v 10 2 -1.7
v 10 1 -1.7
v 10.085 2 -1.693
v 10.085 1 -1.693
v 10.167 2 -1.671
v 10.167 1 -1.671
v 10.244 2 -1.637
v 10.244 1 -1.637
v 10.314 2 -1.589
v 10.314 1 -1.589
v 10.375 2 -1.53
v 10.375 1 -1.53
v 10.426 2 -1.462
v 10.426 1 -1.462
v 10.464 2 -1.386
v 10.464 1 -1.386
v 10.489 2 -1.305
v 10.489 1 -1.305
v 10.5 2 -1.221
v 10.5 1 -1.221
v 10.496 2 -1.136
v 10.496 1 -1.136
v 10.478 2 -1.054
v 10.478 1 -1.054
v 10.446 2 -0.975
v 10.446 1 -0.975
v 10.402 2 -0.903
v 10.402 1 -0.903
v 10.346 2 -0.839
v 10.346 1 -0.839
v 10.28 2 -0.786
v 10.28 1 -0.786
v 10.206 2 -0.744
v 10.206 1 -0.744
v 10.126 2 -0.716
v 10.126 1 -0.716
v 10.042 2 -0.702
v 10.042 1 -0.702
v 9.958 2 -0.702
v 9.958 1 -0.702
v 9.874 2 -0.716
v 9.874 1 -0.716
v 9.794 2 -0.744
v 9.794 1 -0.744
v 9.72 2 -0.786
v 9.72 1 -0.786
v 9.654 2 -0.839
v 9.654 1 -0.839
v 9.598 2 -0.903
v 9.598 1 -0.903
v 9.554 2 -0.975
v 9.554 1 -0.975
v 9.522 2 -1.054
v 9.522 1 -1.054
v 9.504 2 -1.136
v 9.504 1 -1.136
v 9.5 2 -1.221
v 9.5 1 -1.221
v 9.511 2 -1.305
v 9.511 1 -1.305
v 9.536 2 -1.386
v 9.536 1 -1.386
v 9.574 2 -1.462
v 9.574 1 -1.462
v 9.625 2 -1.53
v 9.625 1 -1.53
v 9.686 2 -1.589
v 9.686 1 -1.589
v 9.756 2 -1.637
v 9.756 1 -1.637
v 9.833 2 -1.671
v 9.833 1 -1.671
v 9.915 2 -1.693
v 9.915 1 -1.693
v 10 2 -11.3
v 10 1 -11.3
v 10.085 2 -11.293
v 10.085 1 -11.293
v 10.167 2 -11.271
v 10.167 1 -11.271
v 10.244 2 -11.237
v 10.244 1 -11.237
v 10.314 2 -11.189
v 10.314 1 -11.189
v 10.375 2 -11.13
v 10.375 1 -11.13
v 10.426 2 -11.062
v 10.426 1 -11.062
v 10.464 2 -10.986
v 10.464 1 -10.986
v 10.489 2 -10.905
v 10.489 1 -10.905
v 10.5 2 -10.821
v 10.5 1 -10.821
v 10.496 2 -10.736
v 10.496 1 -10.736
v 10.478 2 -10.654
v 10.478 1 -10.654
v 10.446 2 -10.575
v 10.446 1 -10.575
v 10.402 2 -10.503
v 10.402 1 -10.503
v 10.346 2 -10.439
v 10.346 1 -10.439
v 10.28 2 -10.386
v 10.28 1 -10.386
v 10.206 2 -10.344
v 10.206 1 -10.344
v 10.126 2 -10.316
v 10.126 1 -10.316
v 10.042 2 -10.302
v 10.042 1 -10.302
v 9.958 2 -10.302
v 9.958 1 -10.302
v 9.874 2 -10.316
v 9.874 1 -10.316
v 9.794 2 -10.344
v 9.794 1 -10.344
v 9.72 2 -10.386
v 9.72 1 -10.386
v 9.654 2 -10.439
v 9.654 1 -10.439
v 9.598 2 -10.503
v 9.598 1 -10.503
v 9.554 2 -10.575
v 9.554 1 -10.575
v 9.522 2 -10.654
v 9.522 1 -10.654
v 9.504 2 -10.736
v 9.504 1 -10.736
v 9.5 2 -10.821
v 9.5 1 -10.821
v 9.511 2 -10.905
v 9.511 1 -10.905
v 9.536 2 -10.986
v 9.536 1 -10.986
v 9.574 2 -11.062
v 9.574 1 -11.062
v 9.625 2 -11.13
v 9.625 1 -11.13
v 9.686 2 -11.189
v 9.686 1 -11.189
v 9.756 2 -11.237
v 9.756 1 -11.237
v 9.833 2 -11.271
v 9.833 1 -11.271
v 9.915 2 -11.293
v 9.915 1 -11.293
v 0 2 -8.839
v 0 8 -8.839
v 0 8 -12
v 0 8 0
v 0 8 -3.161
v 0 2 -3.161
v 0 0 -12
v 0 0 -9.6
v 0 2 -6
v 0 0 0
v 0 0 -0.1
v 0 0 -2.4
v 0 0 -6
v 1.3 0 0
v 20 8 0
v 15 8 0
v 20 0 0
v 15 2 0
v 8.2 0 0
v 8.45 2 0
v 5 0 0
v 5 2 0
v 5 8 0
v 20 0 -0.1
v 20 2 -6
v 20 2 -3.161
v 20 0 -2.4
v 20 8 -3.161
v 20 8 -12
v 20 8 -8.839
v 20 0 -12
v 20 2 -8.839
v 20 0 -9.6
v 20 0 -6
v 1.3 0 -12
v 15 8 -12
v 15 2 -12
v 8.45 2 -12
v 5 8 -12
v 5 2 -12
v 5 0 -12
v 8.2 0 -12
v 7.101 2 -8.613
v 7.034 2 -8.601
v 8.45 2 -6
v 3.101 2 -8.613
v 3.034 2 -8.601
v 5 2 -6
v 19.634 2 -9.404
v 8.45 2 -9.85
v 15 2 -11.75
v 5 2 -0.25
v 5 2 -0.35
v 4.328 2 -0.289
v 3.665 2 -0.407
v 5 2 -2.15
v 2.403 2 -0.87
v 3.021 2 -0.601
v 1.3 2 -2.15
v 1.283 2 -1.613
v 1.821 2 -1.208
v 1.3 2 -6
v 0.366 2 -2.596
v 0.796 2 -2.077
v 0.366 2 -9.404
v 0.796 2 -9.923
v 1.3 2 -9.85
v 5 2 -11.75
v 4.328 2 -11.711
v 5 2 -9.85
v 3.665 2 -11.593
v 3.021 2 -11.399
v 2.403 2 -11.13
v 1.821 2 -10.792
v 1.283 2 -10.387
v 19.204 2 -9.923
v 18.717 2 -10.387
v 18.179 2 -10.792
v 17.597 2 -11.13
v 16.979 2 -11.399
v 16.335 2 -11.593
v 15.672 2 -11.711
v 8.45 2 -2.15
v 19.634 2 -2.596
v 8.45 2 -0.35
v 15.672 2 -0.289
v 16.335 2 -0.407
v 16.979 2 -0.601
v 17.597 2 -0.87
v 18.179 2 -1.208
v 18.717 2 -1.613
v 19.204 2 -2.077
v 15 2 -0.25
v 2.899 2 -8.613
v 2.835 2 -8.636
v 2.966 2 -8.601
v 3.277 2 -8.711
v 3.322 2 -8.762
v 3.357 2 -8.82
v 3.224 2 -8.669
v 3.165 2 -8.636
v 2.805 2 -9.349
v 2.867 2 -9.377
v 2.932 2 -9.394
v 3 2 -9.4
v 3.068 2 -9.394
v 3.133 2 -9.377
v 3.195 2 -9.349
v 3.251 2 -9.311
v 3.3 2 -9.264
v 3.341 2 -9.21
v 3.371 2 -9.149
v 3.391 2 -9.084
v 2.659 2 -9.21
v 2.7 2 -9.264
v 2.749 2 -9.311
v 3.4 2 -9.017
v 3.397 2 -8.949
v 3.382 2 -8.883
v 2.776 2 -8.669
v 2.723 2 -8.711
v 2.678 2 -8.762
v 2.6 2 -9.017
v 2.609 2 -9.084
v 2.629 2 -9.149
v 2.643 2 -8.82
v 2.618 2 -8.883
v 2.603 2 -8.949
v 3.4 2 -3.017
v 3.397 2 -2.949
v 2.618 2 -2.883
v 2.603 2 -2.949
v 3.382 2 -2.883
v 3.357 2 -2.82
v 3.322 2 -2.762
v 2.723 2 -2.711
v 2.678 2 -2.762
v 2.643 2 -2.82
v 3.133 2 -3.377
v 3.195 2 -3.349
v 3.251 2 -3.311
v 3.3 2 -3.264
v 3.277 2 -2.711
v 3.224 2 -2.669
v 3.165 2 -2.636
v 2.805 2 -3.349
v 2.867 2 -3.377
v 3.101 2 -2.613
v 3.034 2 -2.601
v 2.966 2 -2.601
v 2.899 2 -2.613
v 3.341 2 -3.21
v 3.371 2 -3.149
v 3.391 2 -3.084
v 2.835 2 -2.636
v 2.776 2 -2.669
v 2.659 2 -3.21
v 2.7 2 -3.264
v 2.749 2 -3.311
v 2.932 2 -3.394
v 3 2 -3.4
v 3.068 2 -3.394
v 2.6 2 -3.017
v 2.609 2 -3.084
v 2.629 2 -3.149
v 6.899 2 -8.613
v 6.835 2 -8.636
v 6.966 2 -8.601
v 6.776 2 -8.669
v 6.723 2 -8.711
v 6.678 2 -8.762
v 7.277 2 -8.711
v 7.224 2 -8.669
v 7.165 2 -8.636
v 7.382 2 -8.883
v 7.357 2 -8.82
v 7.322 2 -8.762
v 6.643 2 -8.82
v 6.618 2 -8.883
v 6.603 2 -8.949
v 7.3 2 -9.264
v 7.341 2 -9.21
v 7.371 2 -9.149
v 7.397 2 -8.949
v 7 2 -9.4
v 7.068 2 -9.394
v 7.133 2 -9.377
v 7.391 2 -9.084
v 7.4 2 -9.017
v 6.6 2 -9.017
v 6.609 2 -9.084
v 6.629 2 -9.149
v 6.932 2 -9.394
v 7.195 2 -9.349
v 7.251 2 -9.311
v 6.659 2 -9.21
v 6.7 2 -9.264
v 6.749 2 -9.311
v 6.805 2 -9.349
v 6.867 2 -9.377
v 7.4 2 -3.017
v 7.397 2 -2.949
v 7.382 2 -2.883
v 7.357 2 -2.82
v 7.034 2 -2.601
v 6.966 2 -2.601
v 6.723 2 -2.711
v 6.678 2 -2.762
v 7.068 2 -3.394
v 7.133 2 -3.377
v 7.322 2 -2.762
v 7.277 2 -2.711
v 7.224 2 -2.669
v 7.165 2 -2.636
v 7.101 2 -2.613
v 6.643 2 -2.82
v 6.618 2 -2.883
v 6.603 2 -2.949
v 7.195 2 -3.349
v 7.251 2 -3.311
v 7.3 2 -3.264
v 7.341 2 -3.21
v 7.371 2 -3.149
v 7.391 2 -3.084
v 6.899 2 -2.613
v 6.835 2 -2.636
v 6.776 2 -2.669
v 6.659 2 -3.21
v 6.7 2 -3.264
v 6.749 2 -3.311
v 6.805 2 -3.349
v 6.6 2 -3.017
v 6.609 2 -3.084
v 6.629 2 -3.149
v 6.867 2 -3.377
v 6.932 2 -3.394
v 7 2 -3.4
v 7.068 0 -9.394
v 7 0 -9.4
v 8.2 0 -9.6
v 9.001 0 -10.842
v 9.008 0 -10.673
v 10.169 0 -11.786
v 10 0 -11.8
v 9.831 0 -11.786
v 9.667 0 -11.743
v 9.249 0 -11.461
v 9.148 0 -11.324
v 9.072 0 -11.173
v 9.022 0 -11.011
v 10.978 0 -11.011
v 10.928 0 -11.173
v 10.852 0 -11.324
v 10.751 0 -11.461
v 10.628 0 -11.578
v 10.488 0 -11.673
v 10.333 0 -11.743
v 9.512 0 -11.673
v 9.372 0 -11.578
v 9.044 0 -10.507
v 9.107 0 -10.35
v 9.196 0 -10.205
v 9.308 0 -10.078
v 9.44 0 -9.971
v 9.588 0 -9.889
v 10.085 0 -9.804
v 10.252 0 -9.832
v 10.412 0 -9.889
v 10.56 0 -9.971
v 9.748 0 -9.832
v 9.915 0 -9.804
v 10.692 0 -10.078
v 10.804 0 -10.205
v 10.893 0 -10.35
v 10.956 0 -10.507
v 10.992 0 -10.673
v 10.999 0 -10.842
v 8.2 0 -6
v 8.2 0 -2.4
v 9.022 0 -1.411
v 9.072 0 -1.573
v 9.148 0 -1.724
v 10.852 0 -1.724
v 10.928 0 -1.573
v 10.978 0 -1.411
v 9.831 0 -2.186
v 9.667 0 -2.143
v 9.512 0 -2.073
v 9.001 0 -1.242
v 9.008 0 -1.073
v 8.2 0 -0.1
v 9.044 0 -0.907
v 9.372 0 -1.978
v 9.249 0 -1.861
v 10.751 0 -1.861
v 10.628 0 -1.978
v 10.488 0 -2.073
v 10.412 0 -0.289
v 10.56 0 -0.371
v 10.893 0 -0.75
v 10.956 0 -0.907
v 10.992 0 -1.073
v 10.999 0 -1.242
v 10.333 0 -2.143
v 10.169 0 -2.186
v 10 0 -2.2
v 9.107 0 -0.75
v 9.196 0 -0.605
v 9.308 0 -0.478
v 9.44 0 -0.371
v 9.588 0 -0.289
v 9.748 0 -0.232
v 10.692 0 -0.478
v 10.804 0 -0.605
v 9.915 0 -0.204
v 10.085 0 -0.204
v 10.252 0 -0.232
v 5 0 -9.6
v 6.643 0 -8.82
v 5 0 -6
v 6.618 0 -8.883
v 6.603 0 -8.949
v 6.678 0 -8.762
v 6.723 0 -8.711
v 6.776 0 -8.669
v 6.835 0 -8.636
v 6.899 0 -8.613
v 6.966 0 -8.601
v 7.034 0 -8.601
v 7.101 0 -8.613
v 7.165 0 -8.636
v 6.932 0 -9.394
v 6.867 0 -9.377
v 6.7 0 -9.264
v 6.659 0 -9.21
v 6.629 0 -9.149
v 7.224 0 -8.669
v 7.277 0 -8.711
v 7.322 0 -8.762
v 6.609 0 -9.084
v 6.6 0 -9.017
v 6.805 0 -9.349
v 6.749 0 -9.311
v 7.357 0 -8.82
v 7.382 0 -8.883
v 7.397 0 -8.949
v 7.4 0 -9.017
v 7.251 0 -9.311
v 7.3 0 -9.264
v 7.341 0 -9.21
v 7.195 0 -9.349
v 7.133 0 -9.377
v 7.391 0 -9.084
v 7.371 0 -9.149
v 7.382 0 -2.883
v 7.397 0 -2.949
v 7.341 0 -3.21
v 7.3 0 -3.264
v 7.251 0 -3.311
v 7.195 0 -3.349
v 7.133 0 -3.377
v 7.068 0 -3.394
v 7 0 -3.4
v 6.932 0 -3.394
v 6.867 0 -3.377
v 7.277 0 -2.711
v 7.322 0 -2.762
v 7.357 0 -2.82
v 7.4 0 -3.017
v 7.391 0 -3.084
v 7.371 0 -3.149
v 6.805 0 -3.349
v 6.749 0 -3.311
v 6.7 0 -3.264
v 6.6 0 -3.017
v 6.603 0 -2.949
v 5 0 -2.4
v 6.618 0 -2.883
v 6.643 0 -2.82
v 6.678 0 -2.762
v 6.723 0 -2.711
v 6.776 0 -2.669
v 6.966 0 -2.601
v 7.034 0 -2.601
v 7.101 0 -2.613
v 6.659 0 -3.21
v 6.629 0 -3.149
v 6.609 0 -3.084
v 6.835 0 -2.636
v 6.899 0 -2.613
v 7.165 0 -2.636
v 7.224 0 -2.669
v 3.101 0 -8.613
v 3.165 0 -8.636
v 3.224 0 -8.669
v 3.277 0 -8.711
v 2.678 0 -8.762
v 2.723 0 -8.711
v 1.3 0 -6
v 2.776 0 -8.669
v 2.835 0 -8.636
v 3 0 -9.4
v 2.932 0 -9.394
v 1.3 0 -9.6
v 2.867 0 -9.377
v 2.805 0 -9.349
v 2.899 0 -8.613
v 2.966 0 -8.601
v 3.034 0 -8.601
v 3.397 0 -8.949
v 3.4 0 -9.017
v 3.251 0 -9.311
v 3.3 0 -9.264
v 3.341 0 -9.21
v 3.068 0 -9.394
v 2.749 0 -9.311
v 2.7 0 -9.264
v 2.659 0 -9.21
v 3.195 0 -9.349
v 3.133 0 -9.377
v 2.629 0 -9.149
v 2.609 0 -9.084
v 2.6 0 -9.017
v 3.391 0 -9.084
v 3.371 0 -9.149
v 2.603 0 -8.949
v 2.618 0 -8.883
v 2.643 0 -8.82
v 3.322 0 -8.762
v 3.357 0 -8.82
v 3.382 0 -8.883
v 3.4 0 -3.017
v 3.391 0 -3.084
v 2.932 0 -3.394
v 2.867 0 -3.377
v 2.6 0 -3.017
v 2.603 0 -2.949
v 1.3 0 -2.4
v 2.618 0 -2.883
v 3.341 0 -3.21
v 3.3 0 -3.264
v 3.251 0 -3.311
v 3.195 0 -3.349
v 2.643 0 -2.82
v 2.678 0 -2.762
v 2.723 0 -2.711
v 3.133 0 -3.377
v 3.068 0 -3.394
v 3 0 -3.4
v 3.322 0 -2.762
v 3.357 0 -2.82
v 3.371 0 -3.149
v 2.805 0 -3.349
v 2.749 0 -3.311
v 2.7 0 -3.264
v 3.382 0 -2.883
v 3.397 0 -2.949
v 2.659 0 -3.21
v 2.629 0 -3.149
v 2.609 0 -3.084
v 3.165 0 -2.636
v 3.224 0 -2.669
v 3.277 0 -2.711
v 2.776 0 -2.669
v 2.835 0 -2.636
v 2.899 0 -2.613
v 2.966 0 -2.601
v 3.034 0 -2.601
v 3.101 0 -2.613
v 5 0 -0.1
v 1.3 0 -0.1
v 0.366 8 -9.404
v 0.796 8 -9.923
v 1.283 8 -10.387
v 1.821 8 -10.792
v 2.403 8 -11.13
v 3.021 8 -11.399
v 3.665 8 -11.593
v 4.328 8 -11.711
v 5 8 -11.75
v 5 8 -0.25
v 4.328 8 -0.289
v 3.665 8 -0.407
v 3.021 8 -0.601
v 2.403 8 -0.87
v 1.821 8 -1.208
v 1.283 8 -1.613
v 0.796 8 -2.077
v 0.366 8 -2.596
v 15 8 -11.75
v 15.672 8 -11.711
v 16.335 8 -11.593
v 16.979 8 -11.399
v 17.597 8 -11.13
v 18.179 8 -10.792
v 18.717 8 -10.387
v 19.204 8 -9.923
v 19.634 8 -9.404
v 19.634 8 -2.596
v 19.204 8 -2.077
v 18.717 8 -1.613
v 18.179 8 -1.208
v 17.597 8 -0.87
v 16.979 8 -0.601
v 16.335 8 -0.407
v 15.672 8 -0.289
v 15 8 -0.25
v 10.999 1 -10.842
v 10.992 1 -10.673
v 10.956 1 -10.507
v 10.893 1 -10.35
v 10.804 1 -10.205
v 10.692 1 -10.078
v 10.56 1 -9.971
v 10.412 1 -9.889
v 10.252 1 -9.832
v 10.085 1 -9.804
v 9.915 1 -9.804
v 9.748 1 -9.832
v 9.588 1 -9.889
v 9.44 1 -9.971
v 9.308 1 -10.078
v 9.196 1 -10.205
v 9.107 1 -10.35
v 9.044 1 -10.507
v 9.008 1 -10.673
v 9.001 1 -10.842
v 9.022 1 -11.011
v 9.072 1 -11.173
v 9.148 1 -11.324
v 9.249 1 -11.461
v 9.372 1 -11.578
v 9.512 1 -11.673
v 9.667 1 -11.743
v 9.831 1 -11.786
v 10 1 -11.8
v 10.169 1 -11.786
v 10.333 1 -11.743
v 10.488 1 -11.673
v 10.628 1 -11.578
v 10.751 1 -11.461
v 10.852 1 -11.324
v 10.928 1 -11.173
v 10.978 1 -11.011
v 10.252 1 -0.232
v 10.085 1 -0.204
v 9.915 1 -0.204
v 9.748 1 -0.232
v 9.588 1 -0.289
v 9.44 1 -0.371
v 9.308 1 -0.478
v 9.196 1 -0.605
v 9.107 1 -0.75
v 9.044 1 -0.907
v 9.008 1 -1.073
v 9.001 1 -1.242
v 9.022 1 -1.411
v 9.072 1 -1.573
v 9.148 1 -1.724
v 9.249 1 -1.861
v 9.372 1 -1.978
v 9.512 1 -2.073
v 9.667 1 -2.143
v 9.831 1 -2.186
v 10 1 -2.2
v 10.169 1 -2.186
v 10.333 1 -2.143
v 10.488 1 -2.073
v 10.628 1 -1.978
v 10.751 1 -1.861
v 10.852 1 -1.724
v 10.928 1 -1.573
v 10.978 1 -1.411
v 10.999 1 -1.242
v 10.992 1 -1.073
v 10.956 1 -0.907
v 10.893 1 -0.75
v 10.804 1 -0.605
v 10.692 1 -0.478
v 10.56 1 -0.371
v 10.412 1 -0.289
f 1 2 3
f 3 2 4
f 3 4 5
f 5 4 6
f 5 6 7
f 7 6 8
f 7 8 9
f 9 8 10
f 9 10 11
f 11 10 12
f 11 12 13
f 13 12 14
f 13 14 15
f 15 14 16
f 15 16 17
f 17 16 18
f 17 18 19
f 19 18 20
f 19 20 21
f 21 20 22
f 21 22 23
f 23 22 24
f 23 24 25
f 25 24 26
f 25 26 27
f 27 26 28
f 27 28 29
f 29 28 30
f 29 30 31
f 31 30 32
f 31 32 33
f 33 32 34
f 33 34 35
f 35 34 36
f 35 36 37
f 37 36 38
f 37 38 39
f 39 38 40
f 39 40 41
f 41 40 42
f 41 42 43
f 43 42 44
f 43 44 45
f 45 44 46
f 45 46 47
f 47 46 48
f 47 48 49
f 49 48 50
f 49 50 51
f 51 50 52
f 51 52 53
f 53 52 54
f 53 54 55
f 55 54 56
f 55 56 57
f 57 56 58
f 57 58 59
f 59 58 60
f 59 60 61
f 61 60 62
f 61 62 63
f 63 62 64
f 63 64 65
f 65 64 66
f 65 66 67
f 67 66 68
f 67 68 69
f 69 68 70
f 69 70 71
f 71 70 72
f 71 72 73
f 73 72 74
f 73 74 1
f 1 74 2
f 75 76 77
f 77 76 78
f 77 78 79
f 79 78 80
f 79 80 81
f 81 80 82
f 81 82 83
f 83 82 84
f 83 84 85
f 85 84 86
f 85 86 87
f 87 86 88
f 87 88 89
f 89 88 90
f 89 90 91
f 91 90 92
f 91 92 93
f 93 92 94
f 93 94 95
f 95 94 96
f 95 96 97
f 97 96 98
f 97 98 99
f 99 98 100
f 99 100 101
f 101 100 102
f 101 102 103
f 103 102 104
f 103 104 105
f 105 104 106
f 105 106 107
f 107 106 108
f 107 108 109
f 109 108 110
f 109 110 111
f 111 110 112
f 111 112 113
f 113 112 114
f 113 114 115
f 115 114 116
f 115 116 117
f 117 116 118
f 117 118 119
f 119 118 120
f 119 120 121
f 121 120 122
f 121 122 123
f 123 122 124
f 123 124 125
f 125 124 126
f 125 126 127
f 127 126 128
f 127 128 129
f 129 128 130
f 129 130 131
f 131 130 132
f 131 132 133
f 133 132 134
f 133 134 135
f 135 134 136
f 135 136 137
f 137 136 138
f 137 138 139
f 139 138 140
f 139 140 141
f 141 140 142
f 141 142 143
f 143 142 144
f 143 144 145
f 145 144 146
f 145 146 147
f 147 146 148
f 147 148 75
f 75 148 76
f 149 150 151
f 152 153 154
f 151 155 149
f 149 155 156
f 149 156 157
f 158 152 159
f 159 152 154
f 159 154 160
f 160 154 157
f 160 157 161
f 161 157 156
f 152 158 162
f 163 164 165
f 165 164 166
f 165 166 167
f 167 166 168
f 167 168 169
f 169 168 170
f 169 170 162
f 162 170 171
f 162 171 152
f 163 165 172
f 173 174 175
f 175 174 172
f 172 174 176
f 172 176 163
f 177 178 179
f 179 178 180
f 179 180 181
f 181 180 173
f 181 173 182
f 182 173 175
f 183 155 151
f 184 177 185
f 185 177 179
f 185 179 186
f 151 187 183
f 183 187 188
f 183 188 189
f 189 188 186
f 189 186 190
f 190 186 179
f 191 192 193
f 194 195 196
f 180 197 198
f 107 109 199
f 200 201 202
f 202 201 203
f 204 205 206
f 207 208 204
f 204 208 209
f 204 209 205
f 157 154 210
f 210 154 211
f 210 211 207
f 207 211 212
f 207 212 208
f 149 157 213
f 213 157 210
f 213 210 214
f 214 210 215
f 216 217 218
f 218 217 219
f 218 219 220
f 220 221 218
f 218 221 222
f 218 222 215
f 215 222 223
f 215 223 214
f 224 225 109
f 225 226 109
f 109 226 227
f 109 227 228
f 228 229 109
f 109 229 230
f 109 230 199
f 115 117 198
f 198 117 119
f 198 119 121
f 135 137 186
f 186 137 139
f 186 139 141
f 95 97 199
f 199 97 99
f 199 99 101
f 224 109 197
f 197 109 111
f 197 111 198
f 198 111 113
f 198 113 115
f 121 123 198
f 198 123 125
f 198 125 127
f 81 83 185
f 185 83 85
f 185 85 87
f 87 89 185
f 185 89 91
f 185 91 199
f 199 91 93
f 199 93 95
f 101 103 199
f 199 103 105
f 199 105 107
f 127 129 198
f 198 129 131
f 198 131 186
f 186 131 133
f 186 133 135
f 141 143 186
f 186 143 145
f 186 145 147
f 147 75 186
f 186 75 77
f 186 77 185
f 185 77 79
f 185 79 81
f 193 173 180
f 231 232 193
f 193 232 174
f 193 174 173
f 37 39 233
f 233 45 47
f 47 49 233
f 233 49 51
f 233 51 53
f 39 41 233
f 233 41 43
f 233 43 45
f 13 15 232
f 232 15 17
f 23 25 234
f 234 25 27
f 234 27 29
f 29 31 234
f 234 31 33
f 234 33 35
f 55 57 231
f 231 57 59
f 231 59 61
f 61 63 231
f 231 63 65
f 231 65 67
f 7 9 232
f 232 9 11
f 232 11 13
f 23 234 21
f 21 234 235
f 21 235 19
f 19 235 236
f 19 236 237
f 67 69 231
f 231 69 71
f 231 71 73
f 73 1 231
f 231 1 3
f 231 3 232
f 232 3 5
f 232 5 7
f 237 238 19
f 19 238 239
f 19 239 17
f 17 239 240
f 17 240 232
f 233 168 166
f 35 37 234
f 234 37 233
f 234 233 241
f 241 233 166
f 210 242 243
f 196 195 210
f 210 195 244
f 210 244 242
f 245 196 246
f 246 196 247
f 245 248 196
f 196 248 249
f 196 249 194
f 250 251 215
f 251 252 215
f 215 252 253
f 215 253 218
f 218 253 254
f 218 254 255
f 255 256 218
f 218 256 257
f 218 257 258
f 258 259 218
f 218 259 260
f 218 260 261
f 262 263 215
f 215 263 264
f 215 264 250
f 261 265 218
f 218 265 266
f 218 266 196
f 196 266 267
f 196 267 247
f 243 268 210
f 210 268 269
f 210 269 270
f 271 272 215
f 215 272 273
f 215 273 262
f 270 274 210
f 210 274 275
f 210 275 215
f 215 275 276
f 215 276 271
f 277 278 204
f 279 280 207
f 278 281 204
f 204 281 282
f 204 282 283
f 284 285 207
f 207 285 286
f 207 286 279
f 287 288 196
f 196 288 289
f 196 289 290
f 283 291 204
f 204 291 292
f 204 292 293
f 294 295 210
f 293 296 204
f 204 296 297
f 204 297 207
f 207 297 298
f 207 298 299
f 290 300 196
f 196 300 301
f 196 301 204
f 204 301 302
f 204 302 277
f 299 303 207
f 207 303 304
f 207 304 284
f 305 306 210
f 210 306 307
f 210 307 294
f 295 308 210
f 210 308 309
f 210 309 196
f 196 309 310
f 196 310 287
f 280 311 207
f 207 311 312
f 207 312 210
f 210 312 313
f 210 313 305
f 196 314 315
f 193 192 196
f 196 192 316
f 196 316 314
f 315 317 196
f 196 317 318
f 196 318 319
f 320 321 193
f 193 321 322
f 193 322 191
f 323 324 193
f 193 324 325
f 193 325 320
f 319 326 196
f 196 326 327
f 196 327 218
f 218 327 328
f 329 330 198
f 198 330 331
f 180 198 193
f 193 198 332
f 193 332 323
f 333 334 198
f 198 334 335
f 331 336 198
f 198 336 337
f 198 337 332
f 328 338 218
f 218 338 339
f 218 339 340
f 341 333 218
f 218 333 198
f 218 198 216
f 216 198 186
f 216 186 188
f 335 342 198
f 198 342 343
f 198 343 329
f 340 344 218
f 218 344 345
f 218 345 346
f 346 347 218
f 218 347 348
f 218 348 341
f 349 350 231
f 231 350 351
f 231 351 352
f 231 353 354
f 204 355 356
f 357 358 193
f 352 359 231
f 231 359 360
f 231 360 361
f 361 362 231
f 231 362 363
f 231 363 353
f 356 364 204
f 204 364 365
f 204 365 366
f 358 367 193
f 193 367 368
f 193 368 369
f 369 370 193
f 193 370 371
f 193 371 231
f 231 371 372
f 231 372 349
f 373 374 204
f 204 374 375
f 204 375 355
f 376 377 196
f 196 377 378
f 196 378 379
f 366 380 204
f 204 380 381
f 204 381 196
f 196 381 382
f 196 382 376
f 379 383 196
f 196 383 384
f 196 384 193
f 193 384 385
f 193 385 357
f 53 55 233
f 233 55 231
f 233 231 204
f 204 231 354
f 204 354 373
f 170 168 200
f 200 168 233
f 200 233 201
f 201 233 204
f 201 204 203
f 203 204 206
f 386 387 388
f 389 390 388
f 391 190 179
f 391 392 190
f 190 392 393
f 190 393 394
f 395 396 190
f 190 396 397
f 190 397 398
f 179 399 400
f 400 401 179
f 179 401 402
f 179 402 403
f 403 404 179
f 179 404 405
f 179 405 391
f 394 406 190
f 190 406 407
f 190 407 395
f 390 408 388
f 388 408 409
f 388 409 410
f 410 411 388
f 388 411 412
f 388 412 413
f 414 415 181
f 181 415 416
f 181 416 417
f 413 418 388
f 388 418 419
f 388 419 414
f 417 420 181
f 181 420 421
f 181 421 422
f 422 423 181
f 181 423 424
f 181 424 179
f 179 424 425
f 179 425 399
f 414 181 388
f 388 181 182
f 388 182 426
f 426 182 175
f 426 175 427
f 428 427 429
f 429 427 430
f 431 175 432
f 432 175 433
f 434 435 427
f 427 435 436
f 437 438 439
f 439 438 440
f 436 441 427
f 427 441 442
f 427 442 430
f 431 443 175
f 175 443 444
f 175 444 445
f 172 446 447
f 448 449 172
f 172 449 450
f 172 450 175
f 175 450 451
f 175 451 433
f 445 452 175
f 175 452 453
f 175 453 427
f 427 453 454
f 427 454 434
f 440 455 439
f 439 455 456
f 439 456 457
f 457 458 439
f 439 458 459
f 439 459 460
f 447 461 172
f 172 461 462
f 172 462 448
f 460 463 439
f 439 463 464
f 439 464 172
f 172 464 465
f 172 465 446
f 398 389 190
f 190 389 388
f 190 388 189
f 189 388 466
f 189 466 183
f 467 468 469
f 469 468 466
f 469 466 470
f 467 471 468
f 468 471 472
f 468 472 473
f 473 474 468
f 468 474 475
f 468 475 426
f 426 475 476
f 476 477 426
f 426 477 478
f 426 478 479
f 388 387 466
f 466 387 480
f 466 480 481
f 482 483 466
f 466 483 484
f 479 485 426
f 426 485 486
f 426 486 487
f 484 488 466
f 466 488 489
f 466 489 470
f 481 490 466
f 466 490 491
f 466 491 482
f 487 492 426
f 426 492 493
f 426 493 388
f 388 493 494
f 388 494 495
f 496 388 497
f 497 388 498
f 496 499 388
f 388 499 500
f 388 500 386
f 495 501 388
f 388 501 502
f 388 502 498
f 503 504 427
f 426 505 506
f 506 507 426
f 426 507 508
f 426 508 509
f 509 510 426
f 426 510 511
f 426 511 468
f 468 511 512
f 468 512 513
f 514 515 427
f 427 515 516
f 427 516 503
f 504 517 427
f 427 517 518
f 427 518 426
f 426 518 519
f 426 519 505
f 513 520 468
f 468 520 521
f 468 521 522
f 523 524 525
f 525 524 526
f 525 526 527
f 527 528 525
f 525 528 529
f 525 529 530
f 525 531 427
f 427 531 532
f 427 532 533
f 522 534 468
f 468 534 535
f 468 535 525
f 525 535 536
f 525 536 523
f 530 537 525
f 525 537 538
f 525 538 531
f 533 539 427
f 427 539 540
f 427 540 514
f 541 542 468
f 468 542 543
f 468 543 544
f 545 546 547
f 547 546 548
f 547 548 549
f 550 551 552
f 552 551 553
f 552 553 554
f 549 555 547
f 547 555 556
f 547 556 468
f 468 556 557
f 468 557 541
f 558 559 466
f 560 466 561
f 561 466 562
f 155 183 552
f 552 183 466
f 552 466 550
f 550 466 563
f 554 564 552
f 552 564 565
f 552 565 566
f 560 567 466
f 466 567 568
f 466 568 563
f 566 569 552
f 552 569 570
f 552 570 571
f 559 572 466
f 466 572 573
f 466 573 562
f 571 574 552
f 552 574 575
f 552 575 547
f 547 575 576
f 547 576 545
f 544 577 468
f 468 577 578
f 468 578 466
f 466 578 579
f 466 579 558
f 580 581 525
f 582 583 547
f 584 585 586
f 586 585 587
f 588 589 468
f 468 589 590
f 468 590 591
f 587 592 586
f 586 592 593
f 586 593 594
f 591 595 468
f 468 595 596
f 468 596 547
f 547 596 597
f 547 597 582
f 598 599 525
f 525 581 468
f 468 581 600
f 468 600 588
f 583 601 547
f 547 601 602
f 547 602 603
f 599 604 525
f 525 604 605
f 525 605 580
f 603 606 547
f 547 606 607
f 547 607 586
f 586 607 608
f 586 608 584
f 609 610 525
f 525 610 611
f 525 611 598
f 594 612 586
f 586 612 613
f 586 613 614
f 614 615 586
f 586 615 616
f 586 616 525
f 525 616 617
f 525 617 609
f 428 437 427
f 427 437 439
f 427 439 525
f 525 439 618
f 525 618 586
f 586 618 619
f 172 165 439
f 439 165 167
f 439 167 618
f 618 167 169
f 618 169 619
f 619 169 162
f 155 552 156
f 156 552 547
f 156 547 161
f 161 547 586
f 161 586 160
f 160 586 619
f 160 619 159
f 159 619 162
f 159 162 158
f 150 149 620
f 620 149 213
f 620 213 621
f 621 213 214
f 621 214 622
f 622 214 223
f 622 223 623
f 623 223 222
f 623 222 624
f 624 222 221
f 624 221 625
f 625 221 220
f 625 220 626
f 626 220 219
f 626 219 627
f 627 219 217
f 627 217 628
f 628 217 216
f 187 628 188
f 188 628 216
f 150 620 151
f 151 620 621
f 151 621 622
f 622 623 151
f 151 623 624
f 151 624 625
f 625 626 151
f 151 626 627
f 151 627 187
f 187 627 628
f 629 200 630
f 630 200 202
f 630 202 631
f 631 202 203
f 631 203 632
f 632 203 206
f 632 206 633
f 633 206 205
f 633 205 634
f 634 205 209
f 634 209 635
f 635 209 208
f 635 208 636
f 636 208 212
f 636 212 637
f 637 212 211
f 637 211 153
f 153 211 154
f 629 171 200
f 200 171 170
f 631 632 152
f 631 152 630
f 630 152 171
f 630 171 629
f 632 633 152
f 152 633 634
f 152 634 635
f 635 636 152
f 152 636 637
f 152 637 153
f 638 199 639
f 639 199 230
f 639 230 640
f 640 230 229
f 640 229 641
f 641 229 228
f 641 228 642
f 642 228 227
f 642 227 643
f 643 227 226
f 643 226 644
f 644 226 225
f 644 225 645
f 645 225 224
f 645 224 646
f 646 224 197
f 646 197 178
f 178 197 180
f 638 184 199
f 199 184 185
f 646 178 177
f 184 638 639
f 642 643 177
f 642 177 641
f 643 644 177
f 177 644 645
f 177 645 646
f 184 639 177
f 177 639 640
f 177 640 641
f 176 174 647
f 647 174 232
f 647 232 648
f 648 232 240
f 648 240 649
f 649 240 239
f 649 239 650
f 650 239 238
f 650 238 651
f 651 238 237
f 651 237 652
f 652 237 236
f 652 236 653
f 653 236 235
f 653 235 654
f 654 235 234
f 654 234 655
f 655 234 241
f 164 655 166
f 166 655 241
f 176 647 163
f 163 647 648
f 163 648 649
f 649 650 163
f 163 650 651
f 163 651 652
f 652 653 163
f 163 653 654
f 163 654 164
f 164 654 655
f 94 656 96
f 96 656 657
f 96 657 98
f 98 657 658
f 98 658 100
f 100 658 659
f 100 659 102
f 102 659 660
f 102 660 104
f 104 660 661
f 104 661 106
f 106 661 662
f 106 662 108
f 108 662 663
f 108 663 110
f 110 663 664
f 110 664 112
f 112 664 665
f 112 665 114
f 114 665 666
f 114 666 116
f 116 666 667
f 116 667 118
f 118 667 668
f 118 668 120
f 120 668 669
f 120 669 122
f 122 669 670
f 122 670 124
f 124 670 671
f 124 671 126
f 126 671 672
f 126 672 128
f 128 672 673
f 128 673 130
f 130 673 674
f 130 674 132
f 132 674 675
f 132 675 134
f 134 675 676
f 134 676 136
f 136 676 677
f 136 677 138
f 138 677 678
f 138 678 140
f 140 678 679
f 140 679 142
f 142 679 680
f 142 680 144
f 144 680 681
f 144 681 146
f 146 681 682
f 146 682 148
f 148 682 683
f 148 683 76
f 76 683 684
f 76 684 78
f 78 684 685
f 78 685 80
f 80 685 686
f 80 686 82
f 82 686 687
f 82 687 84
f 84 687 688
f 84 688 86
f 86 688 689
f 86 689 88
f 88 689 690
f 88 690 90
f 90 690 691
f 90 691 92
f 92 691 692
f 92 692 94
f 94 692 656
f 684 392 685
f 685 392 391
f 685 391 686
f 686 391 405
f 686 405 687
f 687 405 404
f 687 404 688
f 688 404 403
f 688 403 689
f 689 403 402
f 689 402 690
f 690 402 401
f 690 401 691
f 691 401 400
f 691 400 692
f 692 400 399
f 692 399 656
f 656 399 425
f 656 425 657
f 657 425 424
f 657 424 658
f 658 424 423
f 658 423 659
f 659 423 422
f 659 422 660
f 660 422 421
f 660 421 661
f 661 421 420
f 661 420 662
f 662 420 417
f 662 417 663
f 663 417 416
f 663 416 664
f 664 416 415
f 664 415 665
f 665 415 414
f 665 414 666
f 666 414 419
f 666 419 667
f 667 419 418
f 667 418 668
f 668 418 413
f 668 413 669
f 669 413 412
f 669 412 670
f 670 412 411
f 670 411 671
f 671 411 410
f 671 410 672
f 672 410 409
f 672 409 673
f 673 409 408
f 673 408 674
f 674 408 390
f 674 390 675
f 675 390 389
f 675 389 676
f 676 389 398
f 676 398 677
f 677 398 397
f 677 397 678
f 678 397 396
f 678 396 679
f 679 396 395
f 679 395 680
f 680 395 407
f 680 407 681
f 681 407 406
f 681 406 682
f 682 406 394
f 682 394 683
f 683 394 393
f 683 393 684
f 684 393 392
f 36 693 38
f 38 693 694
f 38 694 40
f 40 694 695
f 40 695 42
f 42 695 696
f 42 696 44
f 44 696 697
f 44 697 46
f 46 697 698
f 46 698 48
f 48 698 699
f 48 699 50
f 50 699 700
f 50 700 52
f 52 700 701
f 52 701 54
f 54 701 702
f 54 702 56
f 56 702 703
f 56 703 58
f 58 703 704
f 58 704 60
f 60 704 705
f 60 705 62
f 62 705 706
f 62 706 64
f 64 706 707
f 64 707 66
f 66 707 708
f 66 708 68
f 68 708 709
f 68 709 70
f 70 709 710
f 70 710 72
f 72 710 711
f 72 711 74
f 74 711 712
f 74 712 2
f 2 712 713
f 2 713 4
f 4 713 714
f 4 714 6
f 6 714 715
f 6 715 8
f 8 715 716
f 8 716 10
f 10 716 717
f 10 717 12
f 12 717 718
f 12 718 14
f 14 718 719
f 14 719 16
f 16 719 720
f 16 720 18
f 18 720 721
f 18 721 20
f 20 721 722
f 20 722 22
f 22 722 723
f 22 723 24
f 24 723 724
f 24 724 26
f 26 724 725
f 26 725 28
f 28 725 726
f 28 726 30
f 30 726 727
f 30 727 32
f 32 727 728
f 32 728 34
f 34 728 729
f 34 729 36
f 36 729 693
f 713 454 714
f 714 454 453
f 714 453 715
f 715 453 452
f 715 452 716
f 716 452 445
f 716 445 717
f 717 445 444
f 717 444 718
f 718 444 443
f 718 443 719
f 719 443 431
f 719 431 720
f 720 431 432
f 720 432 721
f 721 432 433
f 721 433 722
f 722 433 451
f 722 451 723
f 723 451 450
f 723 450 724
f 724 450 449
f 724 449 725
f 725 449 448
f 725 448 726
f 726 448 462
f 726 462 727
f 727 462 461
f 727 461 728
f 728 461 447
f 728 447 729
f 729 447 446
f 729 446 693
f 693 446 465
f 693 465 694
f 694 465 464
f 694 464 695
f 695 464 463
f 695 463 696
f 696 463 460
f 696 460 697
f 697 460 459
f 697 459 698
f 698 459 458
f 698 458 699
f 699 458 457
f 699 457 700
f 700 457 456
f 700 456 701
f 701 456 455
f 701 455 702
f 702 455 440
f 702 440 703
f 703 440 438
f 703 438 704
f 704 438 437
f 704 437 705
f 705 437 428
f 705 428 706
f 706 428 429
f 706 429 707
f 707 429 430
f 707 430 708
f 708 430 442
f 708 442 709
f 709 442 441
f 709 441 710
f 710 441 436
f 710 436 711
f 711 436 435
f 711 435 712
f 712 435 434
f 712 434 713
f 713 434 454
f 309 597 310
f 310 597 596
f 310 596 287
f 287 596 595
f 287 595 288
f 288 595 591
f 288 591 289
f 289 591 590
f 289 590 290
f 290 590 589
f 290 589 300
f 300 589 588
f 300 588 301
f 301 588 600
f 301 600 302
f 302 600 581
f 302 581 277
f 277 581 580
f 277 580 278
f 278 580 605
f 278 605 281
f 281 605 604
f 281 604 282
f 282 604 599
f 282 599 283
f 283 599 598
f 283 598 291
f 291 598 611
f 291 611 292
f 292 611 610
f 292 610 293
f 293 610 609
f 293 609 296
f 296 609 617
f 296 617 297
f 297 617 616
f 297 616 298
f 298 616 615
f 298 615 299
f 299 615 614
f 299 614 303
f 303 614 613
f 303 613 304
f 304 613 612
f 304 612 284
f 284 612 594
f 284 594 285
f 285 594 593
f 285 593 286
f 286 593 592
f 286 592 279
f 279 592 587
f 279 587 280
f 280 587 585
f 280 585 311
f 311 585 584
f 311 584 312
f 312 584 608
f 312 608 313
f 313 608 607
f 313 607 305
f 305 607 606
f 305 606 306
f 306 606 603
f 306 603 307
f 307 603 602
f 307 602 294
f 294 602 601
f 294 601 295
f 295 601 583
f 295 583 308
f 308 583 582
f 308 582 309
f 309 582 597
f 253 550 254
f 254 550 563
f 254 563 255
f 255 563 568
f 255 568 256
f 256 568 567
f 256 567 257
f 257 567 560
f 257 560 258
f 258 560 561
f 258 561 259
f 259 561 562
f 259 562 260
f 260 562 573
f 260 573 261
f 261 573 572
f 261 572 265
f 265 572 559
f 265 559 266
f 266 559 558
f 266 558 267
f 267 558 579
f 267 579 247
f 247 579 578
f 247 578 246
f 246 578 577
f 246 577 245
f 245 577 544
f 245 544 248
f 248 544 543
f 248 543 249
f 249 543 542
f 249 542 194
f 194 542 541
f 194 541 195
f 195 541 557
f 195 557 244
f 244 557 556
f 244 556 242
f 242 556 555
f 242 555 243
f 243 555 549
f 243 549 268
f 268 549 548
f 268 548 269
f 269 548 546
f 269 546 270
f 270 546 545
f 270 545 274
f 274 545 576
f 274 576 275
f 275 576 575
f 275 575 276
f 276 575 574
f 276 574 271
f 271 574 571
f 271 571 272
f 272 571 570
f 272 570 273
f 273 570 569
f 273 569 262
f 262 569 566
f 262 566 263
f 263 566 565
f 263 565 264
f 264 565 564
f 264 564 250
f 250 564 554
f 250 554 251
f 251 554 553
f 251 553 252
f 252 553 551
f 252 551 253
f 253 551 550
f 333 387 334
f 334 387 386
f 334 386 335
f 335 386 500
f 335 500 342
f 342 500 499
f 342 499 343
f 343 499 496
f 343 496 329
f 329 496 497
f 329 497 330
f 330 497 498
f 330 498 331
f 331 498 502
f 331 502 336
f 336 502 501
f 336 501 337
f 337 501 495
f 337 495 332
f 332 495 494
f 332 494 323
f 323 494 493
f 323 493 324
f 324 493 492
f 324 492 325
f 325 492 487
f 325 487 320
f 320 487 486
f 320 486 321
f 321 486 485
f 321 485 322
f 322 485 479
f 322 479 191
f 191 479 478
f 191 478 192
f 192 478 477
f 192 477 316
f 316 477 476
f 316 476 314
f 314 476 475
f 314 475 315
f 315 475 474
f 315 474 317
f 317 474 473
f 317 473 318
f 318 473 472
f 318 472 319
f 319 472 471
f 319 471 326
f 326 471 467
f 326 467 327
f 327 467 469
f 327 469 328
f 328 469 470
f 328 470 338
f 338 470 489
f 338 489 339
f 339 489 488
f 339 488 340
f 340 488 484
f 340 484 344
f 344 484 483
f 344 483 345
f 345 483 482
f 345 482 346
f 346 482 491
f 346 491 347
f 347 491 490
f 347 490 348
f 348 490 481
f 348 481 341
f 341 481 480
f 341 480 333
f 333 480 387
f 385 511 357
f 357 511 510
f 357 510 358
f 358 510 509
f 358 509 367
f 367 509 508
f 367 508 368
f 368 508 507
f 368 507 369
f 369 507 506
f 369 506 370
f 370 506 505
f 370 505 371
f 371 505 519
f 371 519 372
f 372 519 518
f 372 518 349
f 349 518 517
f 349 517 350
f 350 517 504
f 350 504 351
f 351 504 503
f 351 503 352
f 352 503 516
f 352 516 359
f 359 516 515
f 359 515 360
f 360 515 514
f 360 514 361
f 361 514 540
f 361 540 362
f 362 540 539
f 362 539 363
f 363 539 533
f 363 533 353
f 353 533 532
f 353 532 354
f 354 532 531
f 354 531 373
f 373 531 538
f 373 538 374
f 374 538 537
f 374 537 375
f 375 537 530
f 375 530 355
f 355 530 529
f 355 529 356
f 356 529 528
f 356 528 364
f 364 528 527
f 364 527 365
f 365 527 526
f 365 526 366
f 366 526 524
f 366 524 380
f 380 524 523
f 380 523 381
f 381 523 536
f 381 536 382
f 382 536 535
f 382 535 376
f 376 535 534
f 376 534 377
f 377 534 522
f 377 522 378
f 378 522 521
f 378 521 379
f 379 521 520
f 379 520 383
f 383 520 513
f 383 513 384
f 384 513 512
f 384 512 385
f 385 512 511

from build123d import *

# Parameters (mm, degrees)
SKETCH_1_W          = 20
SKETCH_1_H          = 12
EXTRUDE_1_DEPTH     = 2
EXTRUDE_2_DEPTH     = 6
SKETCH_5_R          = 0.5
CUT_EXTRUDE_1_DEPTH = 25.657656012
SKETCH_5_3_R        = 1
CUT_EXTRUDE_2_DEPTH = 1
SKETCH_6_R          = 0.4
CUT_EXTRUDE_3_DEPTH = 25.657656012


with BuildPart() as part:
    # 草图1 → 凸台-拉伸1 (new body)
    with BuildSketch(Plane(origin=(0, 0, 0), x_dir=(1, 0, 0), z_dir=(0, 1, 0))):
        with Locations((10, 6)):
            Rectangle(SKETCH_1_W, SKETCH_1_H)
    extrude(amount=EXTRUDE_1_DEPTH)

    # 草图4 → 凸台-拉伸2 (add)
    with BuildSketch(Plane(origin=(0, 2, 0), x_dir=(1, 0, 0), z_dir=(0, 1, 0))):
        with BuildLine():
            Line((5, 11.75), (5, 12))
            Line((5, 12), (0, 12))
            Line((0, 12), (0, 8.839454173))
            ThreePointArc((0, 8.839454173), (2.107281684, 10.969374281), (5, 11.75))
        make_face()
        with BuildLine():
            Line((5, 0), (5, 0.25))
            ThreePointArc((5, 0.25), (2.107281684, 1.030625719), (0, 3.160545827))
            Line((0, 3.160545827), (0, 0))
            Line((0, 0), (5, 0))
        make_face()
        with BuildLine():
            Line((20, 12), (15, 12))
            Line((15, 12), (15, 11.75))
            ThreePointArc((15, 11.75), (17.892718316, 10.969374281), (20, 8.839454173))
            Line((20, 8.839454173), (20, 12))
        make_face()
        with BuildLine():
            ThreePointArc((20, 3.160545827), (17.892718316, 1.030625719), (15, 0.25))
            Line((15, 0.25), (15, 0))
            Line((15, 0), (20, 0))
            Line((20, 0), (20, 3.160545827))
        make_face()
    extrude(amount=EXTRUDE_2_DEPTH)

    # 草图5 → 切除-拉伸1 (cut, through all)
    with BuildSketch(Plane.XZ):
        with Locations(Location((10, -1.2, 0), (0, 0, 270))):
            Circle(SKETCH_5_R)
        with Locations(Location((10, -10.8, 0), (0, 0, 270))):
            Circle(SKETCH_5_R)
    extrude(amount=-CUT_EXTRUDE_1_DEPTH, mode=Mode.SUBTRACT)

    # 草图5<3> → 切除-拉伸2 (cut)
    with BuildSketch(Plane.XZ):
        with Locations(Location((10, -1.2, 0), (0, 0, 270))):
            Circle(SKETCH_5_3_R)
        with Locations(Location((10, -10.8, 0), (0, 0, 270))):
            Circle(SKETCH_5_3_R)
    extrude(amount=-CUT_EXTRUDE_2_DEPTH, mode=Mode.SUBTRACT)

    # 草图6 → 切除-拉伸3 (cut, through all)
    with BuildSketch(Plane.XZ):
        with Locations(Location((3, -3, 0), (0, 0, 270))):
            Circle(SKETCH_6_R)
        with Locations(Location((3, -9, 0), (0, 0, 270))):
            Circle(SKETCH_6_R)
        with Locations(Location((7, -9, 0), (0, 0, 270))):
            Circle(SKETCH_6_R)
        with Locations(Location((7, -3, 0), (0, 0, 270))):
            Circle(SKETCH_6_R)
    extrude(amount=-CUT_EXTRUDE_3_DEPTH, mode=Mode.SUBTRACT)


solid = part.part
